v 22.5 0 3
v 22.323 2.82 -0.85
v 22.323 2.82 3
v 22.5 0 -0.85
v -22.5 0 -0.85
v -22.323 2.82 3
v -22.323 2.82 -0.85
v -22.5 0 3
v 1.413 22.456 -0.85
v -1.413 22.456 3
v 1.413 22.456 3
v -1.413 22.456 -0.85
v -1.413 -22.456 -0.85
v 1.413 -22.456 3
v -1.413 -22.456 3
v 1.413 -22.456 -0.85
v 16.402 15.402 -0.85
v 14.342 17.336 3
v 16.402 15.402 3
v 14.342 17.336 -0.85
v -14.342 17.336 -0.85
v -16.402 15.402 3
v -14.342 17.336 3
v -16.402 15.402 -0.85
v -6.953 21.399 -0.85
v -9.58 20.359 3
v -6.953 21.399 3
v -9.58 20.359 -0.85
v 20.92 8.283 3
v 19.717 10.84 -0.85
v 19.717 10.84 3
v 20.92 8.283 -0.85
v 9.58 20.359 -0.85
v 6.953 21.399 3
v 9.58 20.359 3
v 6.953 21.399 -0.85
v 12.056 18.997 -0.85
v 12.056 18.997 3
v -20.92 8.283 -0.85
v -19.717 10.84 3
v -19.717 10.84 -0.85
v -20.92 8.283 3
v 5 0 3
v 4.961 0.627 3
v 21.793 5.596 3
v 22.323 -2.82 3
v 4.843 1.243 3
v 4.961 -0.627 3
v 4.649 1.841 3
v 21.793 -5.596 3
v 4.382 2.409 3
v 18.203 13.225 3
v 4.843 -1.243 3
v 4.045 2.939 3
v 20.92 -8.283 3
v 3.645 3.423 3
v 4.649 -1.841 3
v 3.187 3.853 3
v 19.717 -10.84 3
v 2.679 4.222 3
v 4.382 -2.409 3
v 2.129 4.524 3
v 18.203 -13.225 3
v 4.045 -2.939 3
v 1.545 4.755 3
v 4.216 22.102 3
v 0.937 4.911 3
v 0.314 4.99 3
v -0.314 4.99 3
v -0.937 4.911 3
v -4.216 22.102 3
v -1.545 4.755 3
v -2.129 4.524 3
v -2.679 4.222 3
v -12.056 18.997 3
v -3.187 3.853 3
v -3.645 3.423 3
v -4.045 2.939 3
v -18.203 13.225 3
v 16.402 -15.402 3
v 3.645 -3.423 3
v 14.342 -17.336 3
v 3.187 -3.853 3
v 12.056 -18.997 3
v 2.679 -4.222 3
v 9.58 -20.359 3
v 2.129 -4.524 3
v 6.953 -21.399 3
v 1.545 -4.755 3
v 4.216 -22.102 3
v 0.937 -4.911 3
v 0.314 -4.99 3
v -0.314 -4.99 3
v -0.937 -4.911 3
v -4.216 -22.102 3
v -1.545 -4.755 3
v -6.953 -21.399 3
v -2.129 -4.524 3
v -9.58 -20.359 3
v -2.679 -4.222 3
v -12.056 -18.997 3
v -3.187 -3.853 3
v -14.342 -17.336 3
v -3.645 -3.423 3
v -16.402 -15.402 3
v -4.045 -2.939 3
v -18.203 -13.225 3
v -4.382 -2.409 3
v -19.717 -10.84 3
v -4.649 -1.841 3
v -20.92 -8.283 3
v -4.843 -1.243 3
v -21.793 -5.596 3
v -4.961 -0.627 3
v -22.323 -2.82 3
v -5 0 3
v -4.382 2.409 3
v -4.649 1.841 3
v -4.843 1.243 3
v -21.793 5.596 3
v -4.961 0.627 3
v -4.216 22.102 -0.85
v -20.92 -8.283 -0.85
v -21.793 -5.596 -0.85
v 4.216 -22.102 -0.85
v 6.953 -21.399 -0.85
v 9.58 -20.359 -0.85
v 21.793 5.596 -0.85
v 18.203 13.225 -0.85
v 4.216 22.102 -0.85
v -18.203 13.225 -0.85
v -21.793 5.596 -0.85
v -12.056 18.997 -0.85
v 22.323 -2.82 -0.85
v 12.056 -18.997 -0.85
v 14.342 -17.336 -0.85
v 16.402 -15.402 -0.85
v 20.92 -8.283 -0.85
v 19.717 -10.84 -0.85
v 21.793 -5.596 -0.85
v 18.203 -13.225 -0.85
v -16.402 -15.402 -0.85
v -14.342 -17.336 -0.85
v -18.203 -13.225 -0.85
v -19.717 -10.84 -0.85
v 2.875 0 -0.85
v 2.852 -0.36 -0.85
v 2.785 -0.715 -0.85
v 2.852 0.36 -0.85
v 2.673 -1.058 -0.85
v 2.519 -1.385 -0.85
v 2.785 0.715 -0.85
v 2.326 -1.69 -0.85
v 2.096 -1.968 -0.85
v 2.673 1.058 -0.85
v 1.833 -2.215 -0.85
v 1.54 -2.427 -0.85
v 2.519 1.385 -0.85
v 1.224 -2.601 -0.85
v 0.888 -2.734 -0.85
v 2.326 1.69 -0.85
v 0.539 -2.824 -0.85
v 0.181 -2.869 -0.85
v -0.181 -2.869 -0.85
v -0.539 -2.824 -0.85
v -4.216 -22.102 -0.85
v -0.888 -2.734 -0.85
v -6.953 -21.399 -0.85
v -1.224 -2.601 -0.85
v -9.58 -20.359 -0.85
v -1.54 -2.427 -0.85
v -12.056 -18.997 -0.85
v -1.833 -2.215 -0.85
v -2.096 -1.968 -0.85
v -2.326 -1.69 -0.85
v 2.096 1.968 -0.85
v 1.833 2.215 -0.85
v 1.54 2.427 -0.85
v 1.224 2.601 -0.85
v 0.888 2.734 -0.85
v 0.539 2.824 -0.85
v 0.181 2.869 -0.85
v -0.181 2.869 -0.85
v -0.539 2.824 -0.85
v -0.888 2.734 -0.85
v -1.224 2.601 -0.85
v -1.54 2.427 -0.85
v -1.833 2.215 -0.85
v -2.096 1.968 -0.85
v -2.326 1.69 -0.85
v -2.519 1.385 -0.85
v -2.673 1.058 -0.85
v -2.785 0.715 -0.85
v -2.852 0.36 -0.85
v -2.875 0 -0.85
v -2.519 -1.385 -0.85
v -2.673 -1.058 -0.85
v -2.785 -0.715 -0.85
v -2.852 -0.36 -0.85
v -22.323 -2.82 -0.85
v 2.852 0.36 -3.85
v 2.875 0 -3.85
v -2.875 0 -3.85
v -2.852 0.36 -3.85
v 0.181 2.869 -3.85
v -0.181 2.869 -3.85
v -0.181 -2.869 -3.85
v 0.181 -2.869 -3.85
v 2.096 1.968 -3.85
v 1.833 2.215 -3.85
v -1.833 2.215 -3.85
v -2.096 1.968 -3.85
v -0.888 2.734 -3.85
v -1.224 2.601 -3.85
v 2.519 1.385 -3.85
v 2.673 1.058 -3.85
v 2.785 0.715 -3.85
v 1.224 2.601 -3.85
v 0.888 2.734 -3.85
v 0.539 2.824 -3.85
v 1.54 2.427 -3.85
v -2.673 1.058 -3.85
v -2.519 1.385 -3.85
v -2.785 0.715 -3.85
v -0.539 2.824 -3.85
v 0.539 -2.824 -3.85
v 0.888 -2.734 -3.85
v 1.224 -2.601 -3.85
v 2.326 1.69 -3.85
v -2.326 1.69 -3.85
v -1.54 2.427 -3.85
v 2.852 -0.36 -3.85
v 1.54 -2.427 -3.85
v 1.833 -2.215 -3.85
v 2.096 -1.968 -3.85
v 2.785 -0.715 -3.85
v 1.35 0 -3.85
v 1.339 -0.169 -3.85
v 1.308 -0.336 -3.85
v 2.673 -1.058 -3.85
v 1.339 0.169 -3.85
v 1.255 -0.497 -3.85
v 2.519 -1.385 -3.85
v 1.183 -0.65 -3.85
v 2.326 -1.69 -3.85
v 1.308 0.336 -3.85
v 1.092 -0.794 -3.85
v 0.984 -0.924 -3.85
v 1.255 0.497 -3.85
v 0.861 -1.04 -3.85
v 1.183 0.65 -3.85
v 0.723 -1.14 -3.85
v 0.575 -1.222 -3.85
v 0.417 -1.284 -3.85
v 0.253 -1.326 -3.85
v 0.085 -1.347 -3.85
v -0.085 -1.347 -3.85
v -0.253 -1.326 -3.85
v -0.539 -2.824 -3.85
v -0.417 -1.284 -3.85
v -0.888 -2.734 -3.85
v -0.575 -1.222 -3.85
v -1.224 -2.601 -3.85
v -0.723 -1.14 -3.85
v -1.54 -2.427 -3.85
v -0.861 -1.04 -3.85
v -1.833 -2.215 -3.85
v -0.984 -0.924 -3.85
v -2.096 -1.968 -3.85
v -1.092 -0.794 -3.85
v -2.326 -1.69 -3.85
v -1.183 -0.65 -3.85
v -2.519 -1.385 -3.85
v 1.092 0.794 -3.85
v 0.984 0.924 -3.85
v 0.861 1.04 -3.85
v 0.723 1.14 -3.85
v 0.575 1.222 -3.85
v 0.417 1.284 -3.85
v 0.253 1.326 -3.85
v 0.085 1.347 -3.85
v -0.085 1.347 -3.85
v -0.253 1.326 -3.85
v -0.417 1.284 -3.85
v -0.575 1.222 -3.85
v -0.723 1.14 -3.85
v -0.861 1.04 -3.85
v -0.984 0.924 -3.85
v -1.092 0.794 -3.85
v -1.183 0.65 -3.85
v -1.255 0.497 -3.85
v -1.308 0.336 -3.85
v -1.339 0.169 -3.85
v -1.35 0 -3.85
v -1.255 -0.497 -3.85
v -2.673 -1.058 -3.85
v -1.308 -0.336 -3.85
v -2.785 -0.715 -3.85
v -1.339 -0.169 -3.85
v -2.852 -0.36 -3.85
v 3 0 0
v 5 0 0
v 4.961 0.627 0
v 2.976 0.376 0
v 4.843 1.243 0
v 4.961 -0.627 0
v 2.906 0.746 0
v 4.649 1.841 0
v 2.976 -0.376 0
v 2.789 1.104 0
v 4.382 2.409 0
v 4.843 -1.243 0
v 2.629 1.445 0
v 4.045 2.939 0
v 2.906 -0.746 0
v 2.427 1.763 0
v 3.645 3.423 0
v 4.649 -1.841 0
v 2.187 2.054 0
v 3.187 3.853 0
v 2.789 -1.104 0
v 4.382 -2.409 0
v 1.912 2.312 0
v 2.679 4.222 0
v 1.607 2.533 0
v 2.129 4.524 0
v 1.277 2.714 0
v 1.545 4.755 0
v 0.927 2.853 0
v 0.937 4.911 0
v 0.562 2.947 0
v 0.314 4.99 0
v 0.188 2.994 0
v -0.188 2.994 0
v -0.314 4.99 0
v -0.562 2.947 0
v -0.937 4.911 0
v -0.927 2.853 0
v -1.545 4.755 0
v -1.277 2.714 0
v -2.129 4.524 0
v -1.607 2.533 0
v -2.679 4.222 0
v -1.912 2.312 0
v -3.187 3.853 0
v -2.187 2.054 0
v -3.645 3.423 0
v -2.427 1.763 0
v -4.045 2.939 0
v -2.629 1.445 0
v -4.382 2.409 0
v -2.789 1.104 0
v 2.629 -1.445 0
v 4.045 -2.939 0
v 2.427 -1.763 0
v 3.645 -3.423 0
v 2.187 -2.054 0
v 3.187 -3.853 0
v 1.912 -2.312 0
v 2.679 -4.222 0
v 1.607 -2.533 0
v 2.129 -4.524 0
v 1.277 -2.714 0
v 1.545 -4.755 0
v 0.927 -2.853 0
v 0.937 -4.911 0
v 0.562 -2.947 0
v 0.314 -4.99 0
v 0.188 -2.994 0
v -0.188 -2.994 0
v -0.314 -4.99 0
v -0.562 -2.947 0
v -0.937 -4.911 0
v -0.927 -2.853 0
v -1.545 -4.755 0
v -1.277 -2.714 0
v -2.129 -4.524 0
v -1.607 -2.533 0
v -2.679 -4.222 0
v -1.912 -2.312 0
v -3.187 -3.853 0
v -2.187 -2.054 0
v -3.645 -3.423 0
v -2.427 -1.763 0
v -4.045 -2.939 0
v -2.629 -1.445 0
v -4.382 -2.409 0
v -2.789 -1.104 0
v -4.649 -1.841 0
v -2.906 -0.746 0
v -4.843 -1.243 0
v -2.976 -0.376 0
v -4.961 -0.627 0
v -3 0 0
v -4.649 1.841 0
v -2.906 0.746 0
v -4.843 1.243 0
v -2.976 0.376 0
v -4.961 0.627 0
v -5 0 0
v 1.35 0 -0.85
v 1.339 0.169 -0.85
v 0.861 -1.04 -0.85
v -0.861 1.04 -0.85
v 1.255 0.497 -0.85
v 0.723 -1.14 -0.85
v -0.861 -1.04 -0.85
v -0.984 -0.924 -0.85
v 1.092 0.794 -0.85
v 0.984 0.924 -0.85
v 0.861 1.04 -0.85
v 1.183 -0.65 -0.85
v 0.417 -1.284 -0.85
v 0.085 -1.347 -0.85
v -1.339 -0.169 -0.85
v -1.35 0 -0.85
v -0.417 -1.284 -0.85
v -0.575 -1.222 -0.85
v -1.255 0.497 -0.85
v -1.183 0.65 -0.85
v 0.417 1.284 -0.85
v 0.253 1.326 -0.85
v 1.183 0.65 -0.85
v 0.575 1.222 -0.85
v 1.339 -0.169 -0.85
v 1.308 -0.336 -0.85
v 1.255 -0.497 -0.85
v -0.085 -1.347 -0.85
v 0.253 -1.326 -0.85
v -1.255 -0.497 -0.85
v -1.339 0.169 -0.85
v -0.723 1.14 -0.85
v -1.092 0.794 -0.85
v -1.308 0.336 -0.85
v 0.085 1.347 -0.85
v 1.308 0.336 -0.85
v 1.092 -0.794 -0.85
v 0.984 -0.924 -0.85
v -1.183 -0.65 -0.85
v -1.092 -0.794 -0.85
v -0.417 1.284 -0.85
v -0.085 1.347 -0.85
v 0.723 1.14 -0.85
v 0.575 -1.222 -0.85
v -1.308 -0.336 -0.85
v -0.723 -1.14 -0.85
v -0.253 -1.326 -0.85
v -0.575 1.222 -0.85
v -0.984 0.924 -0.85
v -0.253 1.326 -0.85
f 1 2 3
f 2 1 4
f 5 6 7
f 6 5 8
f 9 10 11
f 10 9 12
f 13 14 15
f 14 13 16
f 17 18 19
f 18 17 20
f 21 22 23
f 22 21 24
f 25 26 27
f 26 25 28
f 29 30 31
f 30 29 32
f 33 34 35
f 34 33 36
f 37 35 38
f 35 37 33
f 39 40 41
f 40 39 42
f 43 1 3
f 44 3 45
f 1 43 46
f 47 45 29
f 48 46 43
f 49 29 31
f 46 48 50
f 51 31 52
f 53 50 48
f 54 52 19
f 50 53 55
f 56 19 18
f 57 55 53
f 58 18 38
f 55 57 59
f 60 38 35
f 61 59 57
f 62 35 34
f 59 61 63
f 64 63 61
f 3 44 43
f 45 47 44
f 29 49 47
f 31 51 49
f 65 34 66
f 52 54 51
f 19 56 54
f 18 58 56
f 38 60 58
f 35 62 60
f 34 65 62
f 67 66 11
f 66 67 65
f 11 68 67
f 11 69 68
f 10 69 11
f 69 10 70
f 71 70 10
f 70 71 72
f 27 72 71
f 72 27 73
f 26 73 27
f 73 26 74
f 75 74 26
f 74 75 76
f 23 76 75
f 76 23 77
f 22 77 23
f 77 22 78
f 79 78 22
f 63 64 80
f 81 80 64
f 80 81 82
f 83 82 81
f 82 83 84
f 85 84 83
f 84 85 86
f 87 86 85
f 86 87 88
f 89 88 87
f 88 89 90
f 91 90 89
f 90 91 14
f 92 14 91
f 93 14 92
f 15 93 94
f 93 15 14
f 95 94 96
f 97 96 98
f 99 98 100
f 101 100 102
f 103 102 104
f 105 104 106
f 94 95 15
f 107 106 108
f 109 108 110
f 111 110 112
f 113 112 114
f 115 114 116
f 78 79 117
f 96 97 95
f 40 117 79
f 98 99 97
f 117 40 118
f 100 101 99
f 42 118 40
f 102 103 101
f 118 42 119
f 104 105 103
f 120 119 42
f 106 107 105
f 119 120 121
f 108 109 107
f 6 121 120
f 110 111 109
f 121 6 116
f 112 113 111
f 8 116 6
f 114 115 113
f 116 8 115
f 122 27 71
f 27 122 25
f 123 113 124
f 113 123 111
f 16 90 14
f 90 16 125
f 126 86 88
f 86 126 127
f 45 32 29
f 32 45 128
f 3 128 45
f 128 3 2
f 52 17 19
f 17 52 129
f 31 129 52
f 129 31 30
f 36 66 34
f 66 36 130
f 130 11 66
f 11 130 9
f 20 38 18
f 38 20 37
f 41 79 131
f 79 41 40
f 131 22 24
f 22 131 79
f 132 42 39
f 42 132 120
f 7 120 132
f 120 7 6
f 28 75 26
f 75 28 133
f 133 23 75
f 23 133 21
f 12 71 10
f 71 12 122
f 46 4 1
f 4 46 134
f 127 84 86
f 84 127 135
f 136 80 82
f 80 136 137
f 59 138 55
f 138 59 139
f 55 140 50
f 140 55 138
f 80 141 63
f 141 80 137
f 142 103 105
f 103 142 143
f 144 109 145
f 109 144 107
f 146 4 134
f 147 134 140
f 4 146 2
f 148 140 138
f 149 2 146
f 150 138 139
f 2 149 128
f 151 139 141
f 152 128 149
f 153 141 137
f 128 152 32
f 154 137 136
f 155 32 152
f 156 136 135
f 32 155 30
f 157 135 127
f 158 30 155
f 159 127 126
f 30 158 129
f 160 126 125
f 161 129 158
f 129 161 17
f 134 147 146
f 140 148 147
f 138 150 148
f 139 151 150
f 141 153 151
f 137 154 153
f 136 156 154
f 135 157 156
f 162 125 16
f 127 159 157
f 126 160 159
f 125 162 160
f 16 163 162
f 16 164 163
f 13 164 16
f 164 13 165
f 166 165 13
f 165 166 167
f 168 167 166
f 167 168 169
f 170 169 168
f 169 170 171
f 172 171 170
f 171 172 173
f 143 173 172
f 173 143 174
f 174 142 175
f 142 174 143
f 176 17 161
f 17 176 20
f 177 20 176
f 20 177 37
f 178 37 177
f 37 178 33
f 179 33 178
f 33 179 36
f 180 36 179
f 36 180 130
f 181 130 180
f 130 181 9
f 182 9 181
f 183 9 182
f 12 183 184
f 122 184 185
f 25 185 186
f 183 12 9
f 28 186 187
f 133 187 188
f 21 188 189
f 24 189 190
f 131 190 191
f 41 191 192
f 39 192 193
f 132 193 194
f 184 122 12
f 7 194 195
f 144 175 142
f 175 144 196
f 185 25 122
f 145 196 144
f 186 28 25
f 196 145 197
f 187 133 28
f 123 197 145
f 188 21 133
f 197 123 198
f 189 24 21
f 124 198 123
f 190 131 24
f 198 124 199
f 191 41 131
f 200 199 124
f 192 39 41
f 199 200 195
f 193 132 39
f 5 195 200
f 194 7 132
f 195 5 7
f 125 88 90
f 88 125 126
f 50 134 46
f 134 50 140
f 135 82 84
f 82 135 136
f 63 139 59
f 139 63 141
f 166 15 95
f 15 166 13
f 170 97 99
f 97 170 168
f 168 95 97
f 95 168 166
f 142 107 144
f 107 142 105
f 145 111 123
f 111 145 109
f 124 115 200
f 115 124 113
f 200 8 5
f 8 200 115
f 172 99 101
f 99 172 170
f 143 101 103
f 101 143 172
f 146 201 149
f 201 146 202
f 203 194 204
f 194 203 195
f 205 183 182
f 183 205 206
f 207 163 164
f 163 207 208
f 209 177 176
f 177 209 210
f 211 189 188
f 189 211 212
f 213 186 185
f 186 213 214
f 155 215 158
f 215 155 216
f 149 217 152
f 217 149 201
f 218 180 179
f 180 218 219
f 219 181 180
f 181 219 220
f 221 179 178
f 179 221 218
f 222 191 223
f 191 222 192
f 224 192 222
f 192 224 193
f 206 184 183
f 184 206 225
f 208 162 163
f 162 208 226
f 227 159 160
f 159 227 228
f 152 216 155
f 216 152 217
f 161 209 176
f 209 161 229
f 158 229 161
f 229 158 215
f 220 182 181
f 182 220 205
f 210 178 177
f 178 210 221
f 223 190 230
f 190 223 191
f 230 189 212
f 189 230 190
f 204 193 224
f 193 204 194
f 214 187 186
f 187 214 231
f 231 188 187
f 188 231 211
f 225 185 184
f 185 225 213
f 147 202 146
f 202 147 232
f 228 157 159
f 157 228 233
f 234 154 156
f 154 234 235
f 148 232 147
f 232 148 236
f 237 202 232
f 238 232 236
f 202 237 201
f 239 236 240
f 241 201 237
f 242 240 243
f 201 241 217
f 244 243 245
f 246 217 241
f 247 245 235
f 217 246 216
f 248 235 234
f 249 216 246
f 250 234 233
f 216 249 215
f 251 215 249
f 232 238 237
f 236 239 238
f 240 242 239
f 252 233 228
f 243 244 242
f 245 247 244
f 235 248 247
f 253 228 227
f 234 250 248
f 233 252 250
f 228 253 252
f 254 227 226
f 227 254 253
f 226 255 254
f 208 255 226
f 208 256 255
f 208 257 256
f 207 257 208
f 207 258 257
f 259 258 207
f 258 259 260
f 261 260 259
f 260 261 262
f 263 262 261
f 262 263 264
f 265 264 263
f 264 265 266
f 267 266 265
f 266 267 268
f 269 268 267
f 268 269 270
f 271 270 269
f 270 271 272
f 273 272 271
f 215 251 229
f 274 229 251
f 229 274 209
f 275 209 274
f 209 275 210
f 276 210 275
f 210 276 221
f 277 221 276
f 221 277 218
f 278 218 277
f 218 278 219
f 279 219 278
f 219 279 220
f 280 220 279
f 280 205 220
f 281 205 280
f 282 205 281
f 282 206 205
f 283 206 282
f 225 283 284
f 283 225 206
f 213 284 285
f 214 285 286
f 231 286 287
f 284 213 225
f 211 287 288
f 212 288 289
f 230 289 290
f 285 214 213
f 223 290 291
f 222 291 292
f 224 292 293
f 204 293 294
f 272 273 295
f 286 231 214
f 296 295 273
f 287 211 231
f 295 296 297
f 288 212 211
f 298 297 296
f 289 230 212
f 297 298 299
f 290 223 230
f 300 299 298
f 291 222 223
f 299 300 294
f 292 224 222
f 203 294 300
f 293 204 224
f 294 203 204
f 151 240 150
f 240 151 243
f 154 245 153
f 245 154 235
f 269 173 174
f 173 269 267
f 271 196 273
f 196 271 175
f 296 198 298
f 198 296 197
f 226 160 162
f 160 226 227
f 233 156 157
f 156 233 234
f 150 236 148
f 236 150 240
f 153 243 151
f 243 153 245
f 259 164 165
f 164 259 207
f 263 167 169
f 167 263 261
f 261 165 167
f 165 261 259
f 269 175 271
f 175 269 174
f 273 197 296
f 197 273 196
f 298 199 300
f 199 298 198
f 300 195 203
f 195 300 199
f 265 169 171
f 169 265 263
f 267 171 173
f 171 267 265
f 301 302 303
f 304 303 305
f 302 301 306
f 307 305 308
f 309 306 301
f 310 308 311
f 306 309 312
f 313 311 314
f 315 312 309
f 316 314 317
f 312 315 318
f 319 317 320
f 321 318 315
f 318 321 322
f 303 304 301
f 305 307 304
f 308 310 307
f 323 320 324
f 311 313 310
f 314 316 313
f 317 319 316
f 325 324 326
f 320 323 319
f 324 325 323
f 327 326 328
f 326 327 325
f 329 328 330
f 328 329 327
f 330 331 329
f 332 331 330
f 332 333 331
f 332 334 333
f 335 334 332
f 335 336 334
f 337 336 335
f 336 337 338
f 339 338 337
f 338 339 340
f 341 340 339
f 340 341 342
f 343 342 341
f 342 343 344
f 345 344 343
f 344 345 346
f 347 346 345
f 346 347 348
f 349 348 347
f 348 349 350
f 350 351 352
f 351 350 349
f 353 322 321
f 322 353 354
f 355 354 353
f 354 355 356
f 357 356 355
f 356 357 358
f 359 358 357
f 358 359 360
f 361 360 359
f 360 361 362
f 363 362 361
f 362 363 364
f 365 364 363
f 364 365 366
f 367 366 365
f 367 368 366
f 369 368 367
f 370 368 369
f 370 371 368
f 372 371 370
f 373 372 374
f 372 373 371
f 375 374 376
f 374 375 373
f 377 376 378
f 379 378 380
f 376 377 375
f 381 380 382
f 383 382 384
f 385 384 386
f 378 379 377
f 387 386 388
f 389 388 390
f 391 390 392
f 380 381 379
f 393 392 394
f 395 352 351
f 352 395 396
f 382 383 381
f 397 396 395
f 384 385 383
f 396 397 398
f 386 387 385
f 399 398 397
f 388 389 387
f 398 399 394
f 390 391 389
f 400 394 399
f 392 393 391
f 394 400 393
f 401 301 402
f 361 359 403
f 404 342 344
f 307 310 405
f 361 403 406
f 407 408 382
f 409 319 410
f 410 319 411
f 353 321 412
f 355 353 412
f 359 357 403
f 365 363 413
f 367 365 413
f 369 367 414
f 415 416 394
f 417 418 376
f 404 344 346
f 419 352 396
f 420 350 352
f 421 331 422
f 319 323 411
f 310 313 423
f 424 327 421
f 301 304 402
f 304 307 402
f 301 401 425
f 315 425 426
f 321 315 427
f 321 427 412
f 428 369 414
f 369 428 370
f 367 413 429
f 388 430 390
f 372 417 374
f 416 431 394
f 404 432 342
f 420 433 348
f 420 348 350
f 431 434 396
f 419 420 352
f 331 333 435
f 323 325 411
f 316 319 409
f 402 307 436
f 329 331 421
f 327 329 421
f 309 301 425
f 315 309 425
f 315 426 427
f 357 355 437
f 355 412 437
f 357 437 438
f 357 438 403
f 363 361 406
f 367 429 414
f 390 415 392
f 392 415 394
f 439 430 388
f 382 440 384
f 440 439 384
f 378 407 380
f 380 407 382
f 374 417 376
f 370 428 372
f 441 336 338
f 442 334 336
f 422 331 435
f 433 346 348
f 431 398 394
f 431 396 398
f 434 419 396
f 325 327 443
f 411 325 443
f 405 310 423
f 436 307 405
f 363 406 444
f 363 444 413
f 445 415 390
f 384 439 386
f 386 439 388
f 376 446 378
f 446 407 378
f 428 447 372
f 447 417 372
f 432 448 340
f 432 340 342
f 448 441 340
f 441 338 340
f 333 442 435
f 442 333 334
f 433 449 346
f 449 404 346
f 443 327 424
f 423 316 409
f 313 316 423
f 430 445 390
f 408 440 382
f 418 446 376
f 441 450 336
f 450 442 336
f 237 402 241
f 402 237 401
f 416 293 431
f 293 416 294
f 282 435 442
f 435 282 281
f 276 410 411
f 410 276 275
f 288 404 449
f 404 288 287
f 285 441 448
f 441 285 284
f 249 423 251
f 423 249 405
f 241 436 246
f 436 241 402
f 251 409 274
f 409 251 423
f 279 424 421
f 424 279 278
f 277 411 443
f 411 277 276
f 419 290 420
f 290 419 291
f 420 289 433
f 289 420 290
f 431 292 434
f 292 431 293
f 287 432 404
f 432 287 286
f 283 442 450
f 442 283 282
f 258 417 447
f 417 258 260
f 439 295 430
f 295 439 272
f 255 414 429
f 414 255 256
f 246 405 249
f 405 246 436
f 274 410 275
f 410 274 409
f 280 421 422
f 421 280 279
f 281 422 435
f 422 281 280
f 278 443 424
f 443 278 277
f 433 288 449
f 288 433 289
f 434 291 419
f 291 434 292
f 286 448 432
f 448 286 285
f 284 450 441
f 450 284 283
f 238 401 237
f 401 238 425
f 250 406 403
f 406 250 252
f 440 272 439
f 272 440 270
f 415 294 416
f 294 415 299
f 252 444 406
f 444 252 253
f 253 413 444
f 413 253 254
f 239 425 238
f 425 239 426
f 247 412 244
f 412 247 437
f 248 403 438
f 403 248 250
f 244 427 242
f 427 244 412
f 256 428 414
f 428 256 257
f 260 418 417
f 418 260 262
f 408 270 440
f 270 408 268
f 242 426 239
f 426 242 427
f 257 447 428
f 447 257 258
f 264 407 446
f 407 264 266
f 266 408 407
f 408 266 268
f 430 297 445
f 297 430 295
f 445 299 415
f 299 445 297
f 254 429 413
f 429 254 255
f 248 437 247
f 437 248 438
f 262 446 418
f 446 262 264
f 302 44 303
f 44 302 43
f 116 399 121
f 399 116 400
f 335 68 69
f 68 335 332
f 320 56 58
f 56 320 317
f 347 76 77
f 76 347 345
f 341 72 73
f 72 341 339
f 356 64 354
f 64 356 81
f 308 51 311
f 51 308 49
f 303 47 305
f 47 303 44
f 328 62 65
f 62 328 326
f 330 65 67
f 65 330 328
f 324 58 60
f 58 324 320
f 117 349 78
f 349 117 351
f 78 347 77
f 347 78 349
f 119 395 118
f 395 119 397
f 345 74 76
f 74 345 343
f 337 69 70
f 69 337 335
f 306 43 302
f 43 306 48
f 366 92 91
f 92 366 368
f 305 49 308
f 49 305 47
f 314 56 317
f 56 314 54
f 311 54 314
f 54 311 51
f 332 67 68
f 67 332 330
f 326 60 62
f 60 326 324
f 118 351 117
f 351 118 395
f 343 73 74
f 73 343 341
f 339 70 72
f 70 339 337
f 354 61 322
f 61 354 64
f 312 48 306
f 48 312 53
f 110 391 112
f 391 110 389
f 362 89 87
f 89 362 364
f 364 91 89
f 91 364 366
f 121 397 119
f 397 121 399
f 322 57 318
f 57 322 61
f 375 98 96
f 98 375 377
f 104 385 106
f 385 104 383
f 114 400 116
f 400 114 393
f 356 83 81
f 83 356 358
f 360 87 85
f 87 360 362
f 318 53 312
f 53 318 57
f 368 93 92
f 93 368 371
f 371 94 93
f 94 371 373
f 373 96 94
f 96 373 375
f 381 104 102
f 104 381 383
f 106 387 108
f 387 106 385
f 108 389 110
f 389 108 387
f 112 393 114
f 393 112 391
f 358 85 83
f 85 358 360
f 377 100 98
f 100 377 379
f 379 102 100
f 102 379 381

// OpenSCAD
$fn = 50;

difference() {
	union() {
		translate(v = [0, 0, -0.8500000000000001]) {
			cylinder(h = 3.85, r = 22.5);
		}
		#translate(v = [0, 0, -3.85]) {
			cylinder(h = 3.85, r = 2.875);
		}
	}
	union() {
		translate(v = [0, 0, 0]) {
			rotate(a = [0, 0, 0]) {
				difference() {
					union() {
						translate(v = [0, 0, -3.85]) {
							cylinder(h = 3.85, r = 1.0);
						}
						translate(v = [0, 0, -0.85]) {
							cylinder(h = 0.85, r1 = 1.35, r2 = 3.0);
						}
						translate(v = [0, 0, -3.85]) {
							cylinder(h = 3.85, r = 1.35);
						}
						translate(v = [0, 0, -3.85]) {
							cylinder(h = 3.85, r = 1.0);
						}
					}
					union();
				}
			}
		}
		#cylinder(h = 3, r = 5.0);
	}
}
